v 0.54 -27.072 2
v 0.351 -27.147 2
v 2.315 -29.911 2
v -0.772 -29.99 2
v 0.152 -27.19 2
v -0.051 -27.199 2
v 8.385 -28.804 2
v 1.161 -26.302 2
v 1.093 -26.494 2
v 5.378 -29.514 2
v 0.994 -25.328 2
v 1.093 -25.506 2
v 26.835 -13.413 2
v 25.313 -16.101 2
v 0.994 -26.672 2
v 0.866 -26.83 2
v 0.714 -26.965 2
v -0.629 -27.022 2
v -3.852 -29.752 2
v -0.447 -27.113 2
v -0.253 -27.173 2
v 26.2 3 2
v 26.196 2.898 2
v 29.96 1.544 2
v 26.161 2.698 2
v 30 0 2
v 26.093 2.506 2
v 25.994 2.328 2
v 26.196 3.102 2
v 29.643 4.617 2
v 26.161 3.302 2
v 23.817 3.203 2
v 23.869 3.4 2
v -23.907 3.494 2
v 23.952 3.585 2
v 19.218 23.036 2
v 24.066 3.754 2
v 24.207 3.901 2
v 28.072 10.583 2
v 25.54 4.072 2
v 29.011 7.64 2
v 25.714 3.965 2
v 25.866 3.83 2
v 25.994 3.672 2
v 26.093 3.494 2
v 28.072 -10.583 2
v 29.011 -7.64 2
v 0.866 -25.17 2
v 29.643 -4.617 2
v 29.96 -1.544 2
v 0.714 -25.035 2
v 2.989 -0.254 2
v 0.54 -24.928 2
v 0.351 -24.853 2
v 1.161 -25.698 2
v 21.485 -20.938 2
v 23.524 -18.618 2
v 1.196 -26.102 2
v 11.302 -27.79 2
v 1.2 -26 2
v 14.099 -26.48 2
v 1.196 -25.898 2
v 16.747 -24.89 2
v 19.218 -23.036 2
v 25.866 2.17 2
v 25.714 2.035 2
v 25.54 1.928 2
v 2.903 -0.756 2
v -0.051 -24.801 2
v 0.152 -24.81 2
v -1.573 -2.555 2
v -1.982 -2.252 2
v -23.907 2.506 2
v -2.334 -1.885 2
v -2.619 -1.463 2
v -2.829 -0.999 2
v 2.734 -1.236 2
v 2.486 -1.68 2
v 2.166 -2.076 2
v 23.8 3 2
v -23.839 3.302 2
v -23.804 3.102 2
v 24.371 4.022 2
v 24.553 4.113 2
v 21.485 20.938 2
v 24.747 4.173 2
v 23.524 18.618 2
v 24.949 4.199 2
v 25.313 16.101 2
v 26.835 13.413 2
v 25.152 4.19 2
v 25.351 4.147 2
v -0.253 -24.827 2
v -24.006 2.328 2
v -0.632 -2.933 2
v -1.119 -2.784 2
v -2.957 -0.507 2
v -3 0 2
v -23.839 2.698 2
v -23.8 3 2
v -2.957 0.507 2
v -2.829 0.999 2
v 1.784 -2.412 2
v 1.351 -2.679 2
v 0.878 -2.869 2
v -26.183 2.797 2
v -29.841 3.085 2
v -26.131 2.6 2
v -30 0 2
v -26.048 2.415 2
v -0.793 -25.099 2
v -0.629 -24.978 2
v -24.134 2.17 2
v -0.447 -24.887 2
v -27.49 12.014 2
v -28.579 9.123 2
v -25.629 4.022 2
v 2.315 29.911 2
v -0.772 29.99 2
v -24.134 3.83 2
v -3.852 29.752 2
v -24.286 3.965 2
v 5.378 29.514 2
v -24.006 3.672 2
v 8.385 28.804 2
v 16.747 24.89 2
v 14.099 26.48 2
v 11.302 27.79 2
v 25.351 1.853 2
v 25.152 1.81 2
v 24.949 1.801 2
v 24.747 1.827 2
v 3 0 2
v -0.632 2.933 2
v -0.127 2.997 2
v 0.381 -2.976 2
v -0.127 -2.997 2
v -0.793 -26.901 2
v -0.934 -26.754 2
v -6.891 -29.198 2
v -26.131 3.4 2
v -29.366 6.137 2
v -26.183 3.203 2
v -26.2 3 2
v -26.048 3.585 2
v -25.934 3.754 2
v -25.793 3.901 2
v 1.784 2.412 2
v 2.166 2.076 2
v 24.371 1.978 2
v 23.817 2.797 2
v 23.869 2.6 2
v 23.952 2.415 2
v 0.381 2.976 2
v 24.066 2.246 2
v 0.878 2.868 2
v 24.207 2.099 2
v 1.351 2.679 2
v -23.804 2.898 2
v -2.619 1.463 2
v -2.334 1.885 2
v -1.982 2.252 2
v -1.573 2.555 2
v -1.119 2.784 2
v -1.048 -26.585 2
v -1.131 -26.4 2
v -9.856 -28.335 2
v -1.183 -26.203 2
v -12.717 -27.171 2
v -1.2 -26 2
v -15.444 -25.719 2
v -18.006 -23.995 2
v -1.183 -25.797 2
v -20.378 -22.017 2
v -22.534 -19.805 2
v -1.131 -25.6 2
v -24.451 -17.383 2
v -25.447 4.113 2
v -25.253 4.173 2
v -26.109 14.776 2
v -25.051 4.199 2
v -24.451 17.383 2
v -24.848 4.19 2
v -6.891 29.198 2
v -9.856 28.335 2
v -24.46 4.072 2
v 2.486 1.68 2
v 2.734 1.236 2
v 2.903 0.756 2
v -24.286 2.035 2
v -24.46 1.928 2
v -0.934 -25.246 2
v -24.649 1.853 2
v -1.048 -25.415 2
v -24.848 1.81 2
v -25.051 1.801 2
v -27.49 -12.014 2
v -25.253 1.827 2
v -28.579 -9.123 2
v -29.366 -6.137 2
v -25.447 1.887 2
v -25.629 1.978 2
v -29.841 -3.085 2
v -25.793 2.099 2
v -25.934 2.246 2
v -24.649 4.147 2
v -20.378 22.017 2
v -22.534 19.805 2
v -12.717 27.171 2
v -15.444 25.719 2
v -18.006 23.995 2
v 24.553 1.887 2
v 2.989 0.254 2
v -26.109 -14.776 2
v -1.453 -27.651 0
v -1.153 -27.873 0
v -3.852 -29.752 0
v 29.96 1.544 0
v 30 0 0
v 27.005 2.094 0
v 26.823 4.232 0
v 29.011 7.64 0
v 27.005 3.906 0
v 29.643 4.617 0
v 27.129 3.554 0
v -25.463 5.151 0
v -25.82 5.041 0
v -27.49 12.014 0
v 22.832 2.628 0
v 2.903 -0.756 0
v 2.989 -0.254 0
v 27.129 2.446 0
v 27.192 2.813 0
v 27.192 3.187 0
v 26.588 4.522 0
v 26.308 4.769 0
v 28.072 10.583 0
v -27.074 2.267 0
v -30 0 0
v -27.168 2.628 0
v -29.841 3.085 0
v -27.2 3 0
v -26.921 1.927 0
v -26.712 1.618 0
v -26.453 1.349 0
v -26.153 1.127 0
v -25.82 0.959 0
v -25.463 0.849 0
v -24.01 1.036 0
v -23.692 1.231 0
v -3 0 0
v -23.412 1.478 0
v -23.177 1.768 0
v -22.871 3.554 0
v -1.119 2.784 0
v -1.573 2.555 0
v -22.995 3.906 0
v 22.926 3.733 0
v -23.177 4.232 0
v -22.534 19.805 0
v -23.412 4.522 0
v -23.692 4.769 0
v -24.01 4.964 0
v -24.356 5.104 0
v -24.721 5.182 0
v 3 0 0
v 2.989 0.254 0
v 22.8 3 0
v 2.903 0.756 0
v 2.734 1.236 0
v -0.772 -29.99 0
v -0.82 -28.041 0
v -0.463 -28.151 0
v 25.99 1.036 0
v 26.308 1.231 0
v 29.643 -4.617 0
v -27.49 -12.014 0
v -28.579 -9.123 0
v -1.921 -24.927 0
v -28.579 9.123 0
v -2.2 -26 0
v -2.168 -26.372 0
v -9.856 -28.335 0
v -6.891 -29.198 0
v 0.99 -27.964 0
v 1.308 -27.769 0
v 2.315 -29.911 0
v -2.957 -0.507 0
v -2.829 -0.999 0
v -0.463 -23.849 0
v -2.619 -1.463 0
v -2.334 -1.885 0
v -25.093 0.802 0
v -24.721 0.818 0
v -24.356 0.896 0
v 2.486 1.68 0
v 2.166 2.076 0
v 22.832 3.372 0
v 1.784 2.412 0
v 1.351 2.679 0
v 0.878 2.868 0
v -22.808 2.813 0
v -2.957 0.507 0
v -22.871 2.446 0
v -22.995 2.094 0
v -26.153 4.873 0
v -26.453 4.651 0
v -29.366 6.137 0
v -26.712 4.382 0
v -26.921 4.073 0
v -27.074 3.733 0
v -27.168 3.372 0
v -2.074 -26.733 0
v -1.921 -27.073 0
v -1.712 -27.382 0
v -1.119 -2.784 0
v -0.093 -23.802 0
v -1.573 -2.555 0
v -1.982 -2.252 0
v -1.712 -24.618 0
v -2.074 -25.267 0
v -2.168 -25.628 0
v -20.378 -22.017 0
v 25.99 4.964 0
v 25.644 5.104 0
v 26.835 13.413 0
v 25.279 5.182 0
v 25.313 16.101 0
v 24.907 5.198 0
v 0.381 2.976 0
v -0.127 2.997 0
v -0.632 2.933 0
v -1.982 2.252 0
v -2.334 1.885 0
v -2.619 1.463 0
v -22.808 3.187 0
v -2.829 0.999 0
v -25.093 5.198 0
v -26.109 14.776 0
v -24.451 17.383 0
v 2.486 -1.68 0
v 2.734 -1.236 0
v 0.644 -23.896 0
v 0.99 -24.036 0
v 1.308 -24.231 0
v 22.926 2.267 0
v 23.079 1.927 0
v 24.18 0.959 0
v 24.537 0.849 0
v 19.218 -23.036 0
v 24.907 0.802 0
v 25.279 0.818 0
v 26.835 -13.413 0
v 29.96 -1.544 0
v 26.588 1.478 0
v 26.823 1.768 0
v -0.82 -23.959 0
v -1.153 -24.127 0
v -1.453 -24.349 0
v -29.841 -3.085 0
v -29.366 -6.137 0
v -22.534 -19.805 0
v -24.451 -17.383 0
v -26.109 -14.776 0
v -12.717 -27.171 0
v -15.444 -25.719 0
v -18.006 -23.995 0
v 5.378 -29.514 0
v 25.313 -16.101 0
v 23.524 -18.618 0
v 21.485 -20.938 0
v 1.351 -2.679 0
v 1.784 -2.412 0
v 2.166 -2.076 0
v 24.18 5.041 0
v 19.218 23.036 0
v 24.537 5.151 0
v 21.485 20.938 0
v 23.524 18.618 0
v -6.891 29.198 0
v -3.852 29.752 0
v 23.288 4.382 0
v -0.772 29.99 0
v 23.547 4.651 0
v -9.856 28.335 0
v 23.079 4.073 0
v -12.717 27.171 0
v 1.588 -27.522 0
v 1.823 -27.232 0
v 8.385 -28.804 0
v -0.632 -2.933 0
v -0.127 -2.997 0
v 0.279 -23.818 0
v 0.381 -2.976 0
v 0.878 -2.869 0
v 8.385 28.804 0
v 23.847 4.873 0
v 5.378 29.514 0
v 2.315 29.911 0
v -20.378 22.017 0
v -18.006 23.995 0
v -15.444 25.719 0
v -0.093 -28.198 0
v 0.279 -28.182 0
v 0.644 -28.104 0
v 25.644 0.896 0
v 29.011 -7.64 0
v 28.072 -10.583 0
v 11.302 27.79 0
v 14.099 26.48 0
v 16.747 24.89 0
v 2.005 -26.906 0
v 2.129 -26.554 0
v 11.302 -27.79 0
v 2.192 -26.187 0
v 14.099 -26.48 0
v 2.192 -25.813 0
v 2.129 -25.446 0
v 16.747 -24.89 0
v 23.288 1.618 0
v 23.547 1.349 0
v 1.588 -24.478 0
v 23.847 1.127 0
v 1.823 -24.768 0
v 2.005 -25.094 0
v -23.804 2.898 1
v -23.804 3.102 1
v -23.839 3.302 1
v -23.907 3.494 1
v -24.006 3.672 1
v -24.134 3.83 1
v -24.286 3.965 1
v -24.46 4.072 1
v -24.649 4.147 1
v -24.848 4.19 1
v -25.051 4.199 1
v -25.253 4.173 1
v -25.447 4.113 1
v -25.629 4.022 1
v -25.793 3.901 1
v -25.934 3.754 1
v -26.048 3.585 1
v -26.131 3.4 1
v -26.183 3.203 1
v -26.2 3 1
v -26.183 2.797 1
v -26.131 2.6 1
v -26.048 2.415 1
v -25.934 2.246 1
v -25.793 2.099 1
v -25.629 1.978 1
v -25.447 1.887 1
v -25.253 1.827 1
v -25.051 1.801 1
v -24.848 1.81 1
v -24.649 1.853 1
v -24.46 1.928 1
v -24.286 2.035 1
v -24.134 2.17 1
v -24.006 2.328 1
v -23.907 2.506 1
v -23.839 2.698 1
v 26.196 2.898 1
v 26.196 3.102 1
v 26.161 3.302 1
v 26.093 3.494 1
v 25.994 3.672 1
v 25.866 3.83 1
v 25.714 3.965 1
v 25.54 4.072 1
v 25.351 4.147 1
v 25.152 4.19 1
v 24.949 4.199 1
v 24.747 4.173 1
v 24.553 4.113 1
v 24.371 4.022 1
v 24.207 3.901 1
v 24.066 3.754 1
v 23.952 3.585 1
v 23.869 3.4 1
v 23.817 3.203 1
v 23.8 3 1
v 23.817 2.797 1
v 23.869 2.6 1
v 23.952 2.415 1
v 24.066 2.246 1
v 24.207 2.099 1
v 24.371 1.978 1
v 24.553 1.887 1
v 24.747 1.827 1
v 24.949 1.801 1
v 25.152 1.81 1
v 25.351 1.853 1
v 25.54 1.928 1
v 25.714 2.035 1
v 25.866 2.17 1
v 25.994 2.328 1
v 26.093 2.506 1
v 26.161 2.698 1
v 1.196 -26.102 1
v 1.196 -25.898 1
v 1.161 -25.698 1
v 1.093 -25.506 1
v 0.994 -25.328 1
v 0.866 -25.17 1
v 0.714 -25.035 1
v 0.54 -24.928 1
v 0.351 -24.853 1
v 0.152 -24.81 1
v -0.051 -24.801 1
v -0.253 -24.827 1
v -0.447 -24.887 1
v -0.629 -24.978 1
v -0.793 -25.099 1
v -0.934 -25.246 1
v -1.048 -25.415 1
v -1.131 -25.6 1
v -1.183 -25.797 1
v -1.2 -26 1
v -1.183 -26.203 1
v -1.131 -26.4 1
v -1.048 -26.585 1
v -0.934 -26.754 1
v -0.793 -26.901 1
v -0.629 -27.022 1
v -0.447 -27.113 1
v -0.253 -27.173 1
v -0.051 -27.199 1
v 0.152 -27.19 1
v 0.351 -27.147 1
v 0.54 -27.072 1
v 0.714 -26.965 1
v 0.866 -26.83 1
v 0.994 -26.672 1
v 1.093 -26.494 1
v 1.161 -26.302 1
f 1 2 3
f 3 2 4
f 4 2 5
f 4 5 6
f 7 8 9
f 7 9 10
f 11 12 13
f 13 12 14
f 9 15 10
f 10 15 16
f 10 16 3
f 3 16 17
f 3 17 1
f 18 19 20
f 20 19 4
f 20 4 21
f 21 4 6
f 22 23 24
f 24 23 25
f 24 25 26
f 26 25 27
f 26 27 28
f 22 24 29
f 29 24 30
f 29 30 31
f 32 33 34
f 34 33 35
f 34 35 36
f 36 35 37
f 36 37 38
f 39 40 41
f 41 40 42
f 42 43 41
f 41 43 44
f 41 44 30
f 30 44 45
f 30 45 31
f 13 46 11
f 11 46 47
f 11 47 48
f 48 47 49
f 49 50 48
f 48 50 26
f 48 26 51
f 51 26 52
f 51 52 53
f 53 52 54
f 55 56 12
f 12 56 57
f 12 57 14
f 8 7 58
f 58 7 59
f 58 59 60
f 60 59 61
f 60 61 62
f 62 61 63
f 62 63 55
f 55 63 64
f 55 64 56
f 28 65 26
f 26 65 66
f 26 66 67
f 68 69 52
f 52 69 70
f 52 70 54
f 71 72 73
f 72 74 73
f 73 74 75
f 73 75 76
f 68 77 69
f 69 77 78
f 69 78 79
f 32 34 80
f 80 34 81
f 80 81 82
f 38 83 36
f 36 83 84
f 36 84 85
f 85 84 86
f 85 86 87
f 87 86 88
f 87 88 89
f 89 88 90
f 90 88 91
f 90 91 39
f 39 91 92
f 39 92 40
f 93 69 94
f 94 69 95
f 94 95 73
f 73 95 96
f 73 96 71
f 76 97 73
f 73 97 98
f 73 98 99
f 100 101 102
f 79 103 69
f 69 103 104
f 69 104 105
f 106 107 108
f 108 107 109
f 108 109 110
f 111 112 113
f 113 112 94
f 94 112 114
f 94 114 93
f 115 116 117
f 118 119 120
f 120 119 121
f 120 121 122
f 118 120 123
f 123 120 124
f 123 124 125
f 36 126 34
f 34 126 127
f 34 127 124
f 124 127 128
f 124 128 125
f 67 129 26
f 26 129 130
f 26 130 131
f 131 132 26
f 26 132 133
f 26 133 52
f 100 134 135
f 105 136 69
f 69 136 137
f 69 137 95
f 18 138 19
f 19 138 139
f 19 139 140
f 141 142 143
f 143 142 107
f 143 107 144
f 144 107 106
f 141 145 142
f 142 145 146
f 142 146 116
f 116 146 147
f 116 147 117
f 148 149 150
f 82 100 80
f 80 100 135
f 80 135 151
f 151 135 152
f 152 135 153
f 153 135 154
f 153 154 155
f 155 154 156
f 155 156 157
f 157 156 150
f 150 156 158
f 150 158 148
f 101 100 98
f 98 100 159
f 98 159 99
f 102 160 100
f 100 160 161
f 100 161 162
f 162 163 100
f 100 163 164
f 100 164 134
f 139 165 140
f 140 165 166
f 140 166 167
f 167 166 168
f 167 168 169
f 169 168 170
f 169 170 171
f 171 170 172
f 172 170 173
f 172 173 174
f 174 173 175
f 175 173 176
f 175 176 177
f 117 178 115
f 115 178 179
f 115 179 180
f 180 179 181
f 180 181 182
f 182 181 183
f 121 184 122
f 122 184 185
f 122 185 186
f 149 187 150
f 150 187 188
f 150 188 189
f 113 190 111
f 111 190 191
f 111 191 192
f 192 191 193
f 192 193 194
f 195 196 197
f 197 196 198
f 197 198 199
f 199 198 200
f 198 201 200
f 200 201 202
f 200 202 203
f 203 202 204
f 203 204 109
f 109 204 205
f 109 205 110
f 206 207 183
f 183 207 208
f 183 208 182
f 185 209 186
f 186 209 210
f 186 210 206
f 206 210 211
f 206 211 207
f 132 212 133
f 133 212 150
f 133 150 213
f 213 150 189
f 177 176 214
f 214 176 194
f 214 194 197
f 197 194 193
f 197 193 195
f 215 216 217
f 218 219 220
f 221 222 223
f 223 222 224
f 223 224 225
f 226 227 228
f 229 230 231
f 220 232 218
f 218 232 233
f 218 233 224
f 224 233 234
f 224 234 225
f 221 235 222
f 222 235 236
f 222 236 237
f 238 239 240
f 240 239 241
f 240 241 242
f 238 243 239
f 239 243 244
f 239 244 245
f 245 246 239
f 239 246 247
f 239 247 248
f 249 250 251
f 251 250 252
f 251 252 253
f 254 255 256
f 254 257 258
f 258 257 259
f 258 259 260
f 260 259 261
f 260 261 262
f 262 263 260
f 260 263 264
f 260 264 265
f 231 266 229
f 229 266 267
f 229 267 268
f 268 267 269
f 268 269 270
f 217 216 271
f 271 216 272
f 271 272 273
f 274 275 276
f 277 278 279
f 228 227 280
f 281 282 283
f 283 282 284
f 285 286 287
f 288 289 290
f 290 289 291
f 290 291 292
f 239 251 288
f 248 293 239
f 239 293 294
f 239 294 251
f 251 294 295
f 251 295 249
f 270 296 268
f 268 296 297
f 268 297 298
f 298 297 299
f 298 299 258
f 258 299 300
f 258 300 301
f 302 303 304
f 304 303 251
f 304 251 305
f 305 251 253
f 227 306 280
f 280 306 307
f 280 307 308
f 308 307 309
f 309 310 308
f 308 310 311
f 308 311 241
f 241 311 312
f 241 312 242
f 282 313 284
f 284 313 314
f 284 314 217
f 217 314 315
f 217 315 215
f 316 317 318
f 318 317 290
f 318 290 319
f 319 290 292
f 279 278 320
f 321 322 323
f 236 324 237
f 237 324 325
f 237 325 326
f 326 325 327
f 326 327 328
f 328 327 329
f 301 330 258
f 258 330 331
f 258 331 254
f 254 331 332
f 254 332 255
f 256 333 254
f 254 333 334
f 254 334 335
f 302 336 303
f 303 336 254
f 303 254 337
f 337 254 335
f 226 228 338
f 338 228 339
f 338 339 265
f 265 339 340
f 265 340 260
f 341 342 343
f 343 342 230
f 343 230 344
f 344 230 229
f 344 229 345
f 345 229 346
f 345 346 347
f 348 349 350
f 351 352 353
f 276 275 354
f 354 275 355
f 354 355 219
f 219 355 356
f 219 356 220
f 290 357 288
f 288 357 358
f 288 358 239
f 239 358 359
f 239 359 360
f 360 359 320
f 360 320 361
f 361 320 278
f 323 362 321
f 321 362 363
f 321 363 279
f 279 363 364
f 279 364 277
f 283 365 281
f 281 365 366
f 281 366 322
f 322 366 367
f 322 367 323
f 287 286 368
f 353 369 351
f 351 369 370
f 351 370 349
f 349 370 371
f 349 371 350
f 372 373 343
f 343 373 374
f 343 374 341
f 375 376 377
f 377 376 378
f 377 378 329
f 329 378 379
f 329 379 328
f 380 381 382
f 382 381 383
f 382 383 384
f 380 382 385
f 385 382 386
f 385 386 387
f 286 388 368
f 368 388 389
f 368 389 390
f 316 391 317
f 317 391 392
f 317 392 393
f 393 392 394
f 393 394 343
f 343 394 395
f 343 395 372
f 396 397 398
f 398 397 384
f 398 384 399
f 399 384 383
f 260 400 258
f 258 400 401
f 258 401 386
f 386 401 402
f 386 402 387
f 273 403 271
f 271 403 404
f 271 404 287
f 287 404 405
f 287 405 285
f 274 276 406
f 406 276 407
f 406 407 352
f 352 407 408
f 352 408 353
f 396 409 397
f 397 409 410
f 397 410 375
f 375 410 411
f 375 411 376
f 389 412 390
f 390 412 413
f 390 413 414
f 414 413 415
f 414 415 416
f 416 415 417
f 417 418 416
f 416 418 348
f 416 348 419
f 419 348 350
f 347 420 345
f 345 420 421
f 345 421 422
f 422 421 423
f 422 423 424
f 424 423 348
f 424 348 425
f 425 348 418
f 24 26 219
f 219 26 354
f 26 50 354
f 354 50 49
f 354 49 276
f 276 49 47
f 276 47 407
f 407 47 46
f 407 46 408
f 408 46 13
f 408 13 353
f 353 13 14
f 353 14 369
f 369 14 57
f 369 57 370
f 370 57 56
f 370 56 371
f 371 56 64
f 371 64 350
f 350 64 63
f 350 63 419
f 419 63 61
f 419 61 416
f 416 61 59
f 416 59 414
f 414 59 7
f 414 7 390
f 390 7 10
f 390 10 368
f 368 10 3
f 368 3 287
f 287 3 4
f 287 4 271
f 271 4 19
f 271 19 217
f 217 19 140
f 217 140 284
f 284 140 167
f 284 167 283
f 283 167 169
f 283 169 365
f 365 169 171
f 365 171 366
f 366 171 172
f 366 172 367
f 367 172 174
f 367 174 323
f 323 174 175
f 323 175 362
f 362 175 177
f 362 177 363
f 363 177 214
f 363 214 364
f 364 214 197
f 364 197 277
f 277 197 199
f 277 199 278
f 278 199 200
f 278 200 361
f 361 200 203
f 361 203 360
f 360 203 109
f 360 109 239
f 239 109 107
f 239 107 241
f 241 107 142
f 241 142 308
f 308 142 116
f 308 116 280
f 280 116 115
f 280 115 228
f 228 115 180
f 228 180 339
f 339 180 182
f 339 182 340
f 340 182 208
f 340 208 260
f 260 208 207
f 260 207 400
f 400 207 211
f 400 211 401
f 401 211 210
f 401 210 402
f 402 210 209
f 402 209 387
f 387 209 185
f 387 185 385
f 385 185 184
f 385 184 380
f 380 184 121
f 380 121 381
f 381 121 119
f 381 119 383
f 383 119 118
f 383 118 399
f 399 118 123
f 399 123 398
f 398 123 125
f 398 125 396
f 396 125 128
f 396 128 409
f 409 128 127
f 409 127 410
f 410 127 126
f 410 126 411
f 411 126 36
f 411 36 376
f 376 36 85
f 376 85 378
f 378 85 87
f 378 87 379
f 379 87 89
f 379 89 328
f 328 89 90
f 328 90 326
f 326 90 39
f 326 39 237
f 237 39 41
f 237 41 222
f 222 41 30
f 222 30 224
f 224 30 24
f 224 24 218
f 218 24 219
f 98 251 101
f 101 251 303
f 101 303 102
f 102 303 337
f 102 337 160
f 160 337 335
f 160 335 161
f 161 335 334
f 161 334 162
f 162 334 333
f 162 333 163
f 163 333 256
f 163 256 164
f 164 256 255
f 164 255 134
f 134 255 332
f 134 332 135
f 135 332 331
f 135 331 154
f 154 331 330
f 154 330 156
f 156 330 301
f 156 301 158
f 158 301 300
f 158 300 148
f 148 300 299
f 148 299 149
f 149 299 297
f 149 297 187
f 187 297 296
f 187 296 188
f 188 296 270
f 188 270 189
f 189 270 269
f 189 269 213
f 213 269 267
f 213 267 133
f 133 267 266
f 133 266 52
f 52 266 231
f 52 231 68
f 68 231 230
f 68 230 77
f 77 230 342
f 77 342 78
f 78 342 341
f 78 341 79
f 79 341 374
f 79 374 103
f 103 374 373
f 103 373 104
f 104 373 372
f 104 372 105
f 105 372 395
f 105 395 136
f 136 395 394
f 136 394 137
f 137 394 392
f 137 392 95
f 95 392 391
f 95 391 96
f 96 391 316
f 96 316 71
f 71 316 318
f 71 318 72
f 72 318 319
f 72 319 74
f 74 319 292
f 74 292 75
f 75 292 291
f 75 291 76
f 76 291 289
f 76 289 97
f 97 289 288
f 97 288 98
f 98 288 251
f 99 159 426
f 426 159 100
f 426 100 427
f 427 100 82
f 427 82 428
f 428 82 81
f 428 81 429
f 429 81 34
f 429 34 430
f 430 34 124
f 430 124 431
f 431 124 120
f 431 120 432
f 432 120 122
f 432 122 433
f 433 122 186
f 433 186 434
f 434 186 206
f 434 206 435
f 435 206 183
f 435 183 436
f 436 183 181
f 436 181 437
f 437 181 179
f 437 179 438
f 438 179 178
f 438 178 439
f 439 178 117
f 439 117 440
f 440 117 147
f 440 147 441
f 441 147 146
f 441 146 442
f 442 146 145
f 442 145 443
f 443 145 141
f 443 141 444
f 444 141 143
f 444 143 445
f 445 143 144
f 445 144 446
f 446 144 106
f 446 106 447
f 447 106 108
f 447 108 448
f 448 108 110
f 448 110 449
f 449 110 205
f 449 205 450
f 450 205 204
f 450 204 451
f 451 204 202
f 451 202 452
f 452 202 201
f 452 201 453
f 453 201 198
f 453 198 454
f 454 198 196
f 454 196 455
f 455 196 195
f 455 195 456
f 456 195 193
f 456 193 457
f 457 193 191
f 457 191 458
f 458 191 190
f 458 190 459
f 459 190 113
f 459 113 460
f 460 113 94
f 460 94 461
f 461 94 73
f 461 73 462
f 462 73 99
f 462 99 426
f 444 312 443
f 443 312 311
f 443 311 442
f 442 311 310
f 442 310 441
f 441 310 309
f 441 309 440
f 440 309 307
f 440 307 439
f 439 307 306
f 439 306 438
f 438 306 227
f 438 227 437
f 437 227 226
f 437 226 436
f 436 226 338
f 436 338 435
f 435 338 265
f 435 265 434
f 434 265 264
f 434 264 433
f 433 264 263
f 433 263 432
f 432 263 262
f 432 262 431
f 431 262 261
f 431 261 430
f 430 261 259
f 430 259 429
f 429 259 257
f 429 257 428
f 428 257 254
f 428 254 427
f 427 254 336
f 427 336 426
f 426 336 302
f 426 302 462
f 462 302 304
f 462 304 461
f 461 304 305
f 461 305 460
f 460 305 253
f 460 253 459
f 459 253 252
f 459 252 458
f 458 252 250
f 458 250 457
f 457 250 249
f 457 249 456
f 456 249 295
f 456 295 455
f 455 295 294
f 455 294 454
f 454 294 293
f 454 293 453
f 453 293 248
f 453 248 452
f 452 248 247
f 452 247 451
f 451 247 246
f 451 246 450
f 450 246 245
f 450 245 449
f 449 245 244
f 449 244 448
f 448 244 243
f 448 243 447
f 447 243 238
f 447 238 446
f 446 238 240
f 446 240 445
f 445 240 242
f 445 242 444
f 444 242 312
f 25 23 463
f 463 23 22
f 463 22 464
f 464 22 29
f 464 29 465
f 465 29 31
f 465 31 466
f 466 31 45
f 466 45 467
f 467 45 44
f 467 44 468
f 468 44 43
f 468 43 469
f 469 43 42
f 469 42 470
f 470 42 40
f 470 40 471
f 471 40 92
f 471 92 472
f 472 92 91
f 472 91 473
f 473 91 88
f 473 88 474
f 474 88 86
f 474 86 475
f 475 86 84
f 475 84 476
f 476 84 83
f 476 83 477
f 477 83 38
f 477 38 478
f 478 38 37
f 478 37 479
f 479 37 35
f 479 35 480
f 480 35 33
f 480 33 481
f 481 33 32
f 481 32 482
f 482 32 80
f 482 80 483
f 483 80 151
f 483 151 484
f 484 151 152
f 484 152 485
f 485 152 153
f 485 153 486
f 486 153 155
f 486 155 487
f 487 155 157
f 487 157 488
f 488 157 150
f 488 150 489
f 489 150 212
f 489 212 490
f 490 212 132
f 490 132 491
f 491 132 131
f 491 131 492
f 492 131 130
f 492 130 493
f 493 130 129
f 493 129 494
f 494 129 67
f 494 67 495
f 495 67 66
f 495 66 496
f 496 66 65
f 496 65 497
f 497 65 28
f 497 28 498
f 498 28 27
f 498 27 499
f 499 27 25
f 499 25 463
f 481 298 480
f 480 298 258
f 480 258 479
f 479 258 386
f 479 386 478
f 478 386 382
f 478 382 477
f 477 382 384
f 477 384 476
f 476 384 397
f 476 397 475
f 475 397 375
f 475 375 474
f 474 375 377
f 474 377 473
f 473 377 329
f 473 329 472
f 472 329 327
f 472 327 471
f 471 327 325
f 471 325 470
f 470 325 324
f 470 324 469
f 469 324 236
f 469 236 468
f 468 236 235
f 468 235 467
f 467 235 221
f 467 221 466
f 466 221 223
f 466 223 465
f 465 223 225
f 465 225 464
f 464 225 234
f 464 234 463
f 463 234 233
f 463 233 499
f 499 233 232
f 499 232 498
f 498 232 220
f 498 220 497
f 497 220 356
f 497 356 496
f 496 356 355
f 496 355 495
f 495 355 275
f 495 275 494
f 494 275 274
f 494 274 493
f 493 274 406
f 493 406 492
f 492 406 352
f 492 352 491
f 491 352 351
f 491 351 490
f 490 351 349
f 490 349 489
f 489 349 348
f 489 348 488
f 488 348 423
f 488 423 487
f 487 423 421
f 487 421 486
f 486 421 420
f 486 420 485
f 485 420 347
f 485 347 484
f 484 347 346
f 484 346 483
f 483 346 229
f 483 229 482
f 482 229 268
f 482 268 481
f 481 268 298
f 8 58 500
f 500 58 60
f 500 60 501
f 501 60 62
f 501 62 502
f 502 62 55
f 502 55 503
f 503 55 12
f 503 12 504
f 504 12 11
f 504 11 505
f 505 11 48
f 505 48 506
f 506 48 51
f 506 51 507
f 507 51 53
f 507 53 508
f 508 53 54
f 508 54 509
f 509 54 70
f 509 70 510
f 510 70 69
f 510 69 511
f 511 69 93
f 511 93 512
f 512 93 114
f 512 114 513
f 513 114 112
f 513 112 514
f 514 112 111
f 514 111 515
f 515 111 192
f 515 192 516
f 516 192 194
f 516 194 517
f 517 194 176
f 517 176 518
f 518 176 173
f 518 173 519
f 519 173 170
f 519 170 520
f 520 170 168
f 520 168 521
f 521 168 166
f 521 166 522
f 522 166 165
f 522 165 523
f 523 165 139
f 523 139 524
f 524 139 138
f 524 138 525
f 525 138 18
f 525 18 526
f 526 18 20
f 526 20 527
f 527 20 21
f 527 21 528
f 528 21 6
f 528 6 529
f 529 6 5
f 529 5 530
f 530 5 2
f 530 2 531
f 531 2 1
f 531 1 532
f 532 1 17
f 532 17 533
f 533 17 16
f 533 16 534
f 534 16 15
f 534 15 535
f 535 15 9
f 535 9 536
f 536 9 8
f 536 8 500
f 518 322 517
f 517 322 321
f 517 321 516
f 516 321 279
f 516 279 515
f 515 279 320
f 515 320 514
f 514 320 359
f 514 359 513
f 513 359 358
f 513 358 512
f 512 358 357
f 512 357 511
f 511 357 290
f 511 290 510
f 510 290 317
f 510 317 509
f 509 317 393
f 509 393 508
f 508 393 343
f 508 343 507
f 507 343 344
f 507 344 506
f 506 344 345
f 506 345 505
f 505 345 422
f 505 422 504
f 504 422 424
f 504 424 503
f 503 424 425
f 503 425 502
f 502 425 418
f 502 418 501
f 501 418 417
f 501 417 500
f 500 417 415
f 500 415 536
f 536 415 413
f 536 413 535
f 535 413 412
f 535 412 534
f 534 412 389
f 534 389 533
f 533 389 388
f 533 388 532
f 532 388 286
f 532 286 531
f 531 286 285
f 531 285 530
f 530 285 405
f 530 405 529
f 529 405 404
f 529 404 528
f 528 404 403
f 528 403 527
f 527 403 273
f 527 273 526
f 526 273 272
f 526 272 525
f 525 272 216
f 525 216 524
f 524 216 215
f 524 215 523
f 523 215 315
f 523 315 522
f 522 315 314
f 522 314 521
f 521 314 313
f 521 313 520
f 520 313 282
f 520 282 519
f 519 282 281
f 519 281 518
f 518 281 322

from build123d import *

# Parameters (mm, degrees)
SCHIZZO1_R                             = 30
SCHIZZO1_R_2                           = 3
ESTRUSIONE_ESTRUSIONE1_DEPTH           = 2
FORO_SVASATO_PER_VITE_M2_1_D           = 2.4
FORO_SVASATO_PER_VITE_M2_1_DEPTH       = 6
FORO_SVASATO_PER_VITE_M2_1_CSINK_D     = 4.4
FORO_SVASATO_PER_VITE_M2_1_CSINK_ANGLE = 90
FORO_SVASATO_PER_VITE_M2_1_TIP         = 0.721032743


with BuildPart() as part:
    # Schizzo1 → Estrusione-Estrusione1 (new body)
    with BuildSketch(Plane.XY):
        Circle(SCHIZZO1_R)
        Circle(SCHIZZO1_R_2, mode=Mode.SUBTRACT)
    extrude(amount=ESTRUSIONE_ESTRUSIONE1_DEPTH)

    # Foro svasato per Vite M2-1
    with Locations(Plane(origin=(0, 0, 0), x_dir=(-1, 0, 0), z_dir=(0, 0, -1))):
        with Locations((0, -26), (-25, 3), (25, 3)):
            CounterSinkHole(FORO_SVASATO_PER_VITE_M2_1_D / 2, FORO_SVASATO_PER_VITE_M2_1_CSINK_D / 2, depth=FORO_SVASATO_PER_VITE_M2_1_DEPTH, counter_sink_angle=FORO_SVASATO_PER_VITE_M2_1_CSINK_ANGLE)
            with Locations((0, 0, -(FORO_SVASATO_PER_VITE_M2_1_DEPTH + FORO_SVASATO_PER_VITE_M2_1_TIP / 2))):  # 118° drill point
                Cone(0, FORO_SVASATO_PER_VITE_M2_1_D / 2, FORO_SVASATO_PER_VITE_M2_1_TIP, mode=Mode.SUBTRACT)


solid = part.part
